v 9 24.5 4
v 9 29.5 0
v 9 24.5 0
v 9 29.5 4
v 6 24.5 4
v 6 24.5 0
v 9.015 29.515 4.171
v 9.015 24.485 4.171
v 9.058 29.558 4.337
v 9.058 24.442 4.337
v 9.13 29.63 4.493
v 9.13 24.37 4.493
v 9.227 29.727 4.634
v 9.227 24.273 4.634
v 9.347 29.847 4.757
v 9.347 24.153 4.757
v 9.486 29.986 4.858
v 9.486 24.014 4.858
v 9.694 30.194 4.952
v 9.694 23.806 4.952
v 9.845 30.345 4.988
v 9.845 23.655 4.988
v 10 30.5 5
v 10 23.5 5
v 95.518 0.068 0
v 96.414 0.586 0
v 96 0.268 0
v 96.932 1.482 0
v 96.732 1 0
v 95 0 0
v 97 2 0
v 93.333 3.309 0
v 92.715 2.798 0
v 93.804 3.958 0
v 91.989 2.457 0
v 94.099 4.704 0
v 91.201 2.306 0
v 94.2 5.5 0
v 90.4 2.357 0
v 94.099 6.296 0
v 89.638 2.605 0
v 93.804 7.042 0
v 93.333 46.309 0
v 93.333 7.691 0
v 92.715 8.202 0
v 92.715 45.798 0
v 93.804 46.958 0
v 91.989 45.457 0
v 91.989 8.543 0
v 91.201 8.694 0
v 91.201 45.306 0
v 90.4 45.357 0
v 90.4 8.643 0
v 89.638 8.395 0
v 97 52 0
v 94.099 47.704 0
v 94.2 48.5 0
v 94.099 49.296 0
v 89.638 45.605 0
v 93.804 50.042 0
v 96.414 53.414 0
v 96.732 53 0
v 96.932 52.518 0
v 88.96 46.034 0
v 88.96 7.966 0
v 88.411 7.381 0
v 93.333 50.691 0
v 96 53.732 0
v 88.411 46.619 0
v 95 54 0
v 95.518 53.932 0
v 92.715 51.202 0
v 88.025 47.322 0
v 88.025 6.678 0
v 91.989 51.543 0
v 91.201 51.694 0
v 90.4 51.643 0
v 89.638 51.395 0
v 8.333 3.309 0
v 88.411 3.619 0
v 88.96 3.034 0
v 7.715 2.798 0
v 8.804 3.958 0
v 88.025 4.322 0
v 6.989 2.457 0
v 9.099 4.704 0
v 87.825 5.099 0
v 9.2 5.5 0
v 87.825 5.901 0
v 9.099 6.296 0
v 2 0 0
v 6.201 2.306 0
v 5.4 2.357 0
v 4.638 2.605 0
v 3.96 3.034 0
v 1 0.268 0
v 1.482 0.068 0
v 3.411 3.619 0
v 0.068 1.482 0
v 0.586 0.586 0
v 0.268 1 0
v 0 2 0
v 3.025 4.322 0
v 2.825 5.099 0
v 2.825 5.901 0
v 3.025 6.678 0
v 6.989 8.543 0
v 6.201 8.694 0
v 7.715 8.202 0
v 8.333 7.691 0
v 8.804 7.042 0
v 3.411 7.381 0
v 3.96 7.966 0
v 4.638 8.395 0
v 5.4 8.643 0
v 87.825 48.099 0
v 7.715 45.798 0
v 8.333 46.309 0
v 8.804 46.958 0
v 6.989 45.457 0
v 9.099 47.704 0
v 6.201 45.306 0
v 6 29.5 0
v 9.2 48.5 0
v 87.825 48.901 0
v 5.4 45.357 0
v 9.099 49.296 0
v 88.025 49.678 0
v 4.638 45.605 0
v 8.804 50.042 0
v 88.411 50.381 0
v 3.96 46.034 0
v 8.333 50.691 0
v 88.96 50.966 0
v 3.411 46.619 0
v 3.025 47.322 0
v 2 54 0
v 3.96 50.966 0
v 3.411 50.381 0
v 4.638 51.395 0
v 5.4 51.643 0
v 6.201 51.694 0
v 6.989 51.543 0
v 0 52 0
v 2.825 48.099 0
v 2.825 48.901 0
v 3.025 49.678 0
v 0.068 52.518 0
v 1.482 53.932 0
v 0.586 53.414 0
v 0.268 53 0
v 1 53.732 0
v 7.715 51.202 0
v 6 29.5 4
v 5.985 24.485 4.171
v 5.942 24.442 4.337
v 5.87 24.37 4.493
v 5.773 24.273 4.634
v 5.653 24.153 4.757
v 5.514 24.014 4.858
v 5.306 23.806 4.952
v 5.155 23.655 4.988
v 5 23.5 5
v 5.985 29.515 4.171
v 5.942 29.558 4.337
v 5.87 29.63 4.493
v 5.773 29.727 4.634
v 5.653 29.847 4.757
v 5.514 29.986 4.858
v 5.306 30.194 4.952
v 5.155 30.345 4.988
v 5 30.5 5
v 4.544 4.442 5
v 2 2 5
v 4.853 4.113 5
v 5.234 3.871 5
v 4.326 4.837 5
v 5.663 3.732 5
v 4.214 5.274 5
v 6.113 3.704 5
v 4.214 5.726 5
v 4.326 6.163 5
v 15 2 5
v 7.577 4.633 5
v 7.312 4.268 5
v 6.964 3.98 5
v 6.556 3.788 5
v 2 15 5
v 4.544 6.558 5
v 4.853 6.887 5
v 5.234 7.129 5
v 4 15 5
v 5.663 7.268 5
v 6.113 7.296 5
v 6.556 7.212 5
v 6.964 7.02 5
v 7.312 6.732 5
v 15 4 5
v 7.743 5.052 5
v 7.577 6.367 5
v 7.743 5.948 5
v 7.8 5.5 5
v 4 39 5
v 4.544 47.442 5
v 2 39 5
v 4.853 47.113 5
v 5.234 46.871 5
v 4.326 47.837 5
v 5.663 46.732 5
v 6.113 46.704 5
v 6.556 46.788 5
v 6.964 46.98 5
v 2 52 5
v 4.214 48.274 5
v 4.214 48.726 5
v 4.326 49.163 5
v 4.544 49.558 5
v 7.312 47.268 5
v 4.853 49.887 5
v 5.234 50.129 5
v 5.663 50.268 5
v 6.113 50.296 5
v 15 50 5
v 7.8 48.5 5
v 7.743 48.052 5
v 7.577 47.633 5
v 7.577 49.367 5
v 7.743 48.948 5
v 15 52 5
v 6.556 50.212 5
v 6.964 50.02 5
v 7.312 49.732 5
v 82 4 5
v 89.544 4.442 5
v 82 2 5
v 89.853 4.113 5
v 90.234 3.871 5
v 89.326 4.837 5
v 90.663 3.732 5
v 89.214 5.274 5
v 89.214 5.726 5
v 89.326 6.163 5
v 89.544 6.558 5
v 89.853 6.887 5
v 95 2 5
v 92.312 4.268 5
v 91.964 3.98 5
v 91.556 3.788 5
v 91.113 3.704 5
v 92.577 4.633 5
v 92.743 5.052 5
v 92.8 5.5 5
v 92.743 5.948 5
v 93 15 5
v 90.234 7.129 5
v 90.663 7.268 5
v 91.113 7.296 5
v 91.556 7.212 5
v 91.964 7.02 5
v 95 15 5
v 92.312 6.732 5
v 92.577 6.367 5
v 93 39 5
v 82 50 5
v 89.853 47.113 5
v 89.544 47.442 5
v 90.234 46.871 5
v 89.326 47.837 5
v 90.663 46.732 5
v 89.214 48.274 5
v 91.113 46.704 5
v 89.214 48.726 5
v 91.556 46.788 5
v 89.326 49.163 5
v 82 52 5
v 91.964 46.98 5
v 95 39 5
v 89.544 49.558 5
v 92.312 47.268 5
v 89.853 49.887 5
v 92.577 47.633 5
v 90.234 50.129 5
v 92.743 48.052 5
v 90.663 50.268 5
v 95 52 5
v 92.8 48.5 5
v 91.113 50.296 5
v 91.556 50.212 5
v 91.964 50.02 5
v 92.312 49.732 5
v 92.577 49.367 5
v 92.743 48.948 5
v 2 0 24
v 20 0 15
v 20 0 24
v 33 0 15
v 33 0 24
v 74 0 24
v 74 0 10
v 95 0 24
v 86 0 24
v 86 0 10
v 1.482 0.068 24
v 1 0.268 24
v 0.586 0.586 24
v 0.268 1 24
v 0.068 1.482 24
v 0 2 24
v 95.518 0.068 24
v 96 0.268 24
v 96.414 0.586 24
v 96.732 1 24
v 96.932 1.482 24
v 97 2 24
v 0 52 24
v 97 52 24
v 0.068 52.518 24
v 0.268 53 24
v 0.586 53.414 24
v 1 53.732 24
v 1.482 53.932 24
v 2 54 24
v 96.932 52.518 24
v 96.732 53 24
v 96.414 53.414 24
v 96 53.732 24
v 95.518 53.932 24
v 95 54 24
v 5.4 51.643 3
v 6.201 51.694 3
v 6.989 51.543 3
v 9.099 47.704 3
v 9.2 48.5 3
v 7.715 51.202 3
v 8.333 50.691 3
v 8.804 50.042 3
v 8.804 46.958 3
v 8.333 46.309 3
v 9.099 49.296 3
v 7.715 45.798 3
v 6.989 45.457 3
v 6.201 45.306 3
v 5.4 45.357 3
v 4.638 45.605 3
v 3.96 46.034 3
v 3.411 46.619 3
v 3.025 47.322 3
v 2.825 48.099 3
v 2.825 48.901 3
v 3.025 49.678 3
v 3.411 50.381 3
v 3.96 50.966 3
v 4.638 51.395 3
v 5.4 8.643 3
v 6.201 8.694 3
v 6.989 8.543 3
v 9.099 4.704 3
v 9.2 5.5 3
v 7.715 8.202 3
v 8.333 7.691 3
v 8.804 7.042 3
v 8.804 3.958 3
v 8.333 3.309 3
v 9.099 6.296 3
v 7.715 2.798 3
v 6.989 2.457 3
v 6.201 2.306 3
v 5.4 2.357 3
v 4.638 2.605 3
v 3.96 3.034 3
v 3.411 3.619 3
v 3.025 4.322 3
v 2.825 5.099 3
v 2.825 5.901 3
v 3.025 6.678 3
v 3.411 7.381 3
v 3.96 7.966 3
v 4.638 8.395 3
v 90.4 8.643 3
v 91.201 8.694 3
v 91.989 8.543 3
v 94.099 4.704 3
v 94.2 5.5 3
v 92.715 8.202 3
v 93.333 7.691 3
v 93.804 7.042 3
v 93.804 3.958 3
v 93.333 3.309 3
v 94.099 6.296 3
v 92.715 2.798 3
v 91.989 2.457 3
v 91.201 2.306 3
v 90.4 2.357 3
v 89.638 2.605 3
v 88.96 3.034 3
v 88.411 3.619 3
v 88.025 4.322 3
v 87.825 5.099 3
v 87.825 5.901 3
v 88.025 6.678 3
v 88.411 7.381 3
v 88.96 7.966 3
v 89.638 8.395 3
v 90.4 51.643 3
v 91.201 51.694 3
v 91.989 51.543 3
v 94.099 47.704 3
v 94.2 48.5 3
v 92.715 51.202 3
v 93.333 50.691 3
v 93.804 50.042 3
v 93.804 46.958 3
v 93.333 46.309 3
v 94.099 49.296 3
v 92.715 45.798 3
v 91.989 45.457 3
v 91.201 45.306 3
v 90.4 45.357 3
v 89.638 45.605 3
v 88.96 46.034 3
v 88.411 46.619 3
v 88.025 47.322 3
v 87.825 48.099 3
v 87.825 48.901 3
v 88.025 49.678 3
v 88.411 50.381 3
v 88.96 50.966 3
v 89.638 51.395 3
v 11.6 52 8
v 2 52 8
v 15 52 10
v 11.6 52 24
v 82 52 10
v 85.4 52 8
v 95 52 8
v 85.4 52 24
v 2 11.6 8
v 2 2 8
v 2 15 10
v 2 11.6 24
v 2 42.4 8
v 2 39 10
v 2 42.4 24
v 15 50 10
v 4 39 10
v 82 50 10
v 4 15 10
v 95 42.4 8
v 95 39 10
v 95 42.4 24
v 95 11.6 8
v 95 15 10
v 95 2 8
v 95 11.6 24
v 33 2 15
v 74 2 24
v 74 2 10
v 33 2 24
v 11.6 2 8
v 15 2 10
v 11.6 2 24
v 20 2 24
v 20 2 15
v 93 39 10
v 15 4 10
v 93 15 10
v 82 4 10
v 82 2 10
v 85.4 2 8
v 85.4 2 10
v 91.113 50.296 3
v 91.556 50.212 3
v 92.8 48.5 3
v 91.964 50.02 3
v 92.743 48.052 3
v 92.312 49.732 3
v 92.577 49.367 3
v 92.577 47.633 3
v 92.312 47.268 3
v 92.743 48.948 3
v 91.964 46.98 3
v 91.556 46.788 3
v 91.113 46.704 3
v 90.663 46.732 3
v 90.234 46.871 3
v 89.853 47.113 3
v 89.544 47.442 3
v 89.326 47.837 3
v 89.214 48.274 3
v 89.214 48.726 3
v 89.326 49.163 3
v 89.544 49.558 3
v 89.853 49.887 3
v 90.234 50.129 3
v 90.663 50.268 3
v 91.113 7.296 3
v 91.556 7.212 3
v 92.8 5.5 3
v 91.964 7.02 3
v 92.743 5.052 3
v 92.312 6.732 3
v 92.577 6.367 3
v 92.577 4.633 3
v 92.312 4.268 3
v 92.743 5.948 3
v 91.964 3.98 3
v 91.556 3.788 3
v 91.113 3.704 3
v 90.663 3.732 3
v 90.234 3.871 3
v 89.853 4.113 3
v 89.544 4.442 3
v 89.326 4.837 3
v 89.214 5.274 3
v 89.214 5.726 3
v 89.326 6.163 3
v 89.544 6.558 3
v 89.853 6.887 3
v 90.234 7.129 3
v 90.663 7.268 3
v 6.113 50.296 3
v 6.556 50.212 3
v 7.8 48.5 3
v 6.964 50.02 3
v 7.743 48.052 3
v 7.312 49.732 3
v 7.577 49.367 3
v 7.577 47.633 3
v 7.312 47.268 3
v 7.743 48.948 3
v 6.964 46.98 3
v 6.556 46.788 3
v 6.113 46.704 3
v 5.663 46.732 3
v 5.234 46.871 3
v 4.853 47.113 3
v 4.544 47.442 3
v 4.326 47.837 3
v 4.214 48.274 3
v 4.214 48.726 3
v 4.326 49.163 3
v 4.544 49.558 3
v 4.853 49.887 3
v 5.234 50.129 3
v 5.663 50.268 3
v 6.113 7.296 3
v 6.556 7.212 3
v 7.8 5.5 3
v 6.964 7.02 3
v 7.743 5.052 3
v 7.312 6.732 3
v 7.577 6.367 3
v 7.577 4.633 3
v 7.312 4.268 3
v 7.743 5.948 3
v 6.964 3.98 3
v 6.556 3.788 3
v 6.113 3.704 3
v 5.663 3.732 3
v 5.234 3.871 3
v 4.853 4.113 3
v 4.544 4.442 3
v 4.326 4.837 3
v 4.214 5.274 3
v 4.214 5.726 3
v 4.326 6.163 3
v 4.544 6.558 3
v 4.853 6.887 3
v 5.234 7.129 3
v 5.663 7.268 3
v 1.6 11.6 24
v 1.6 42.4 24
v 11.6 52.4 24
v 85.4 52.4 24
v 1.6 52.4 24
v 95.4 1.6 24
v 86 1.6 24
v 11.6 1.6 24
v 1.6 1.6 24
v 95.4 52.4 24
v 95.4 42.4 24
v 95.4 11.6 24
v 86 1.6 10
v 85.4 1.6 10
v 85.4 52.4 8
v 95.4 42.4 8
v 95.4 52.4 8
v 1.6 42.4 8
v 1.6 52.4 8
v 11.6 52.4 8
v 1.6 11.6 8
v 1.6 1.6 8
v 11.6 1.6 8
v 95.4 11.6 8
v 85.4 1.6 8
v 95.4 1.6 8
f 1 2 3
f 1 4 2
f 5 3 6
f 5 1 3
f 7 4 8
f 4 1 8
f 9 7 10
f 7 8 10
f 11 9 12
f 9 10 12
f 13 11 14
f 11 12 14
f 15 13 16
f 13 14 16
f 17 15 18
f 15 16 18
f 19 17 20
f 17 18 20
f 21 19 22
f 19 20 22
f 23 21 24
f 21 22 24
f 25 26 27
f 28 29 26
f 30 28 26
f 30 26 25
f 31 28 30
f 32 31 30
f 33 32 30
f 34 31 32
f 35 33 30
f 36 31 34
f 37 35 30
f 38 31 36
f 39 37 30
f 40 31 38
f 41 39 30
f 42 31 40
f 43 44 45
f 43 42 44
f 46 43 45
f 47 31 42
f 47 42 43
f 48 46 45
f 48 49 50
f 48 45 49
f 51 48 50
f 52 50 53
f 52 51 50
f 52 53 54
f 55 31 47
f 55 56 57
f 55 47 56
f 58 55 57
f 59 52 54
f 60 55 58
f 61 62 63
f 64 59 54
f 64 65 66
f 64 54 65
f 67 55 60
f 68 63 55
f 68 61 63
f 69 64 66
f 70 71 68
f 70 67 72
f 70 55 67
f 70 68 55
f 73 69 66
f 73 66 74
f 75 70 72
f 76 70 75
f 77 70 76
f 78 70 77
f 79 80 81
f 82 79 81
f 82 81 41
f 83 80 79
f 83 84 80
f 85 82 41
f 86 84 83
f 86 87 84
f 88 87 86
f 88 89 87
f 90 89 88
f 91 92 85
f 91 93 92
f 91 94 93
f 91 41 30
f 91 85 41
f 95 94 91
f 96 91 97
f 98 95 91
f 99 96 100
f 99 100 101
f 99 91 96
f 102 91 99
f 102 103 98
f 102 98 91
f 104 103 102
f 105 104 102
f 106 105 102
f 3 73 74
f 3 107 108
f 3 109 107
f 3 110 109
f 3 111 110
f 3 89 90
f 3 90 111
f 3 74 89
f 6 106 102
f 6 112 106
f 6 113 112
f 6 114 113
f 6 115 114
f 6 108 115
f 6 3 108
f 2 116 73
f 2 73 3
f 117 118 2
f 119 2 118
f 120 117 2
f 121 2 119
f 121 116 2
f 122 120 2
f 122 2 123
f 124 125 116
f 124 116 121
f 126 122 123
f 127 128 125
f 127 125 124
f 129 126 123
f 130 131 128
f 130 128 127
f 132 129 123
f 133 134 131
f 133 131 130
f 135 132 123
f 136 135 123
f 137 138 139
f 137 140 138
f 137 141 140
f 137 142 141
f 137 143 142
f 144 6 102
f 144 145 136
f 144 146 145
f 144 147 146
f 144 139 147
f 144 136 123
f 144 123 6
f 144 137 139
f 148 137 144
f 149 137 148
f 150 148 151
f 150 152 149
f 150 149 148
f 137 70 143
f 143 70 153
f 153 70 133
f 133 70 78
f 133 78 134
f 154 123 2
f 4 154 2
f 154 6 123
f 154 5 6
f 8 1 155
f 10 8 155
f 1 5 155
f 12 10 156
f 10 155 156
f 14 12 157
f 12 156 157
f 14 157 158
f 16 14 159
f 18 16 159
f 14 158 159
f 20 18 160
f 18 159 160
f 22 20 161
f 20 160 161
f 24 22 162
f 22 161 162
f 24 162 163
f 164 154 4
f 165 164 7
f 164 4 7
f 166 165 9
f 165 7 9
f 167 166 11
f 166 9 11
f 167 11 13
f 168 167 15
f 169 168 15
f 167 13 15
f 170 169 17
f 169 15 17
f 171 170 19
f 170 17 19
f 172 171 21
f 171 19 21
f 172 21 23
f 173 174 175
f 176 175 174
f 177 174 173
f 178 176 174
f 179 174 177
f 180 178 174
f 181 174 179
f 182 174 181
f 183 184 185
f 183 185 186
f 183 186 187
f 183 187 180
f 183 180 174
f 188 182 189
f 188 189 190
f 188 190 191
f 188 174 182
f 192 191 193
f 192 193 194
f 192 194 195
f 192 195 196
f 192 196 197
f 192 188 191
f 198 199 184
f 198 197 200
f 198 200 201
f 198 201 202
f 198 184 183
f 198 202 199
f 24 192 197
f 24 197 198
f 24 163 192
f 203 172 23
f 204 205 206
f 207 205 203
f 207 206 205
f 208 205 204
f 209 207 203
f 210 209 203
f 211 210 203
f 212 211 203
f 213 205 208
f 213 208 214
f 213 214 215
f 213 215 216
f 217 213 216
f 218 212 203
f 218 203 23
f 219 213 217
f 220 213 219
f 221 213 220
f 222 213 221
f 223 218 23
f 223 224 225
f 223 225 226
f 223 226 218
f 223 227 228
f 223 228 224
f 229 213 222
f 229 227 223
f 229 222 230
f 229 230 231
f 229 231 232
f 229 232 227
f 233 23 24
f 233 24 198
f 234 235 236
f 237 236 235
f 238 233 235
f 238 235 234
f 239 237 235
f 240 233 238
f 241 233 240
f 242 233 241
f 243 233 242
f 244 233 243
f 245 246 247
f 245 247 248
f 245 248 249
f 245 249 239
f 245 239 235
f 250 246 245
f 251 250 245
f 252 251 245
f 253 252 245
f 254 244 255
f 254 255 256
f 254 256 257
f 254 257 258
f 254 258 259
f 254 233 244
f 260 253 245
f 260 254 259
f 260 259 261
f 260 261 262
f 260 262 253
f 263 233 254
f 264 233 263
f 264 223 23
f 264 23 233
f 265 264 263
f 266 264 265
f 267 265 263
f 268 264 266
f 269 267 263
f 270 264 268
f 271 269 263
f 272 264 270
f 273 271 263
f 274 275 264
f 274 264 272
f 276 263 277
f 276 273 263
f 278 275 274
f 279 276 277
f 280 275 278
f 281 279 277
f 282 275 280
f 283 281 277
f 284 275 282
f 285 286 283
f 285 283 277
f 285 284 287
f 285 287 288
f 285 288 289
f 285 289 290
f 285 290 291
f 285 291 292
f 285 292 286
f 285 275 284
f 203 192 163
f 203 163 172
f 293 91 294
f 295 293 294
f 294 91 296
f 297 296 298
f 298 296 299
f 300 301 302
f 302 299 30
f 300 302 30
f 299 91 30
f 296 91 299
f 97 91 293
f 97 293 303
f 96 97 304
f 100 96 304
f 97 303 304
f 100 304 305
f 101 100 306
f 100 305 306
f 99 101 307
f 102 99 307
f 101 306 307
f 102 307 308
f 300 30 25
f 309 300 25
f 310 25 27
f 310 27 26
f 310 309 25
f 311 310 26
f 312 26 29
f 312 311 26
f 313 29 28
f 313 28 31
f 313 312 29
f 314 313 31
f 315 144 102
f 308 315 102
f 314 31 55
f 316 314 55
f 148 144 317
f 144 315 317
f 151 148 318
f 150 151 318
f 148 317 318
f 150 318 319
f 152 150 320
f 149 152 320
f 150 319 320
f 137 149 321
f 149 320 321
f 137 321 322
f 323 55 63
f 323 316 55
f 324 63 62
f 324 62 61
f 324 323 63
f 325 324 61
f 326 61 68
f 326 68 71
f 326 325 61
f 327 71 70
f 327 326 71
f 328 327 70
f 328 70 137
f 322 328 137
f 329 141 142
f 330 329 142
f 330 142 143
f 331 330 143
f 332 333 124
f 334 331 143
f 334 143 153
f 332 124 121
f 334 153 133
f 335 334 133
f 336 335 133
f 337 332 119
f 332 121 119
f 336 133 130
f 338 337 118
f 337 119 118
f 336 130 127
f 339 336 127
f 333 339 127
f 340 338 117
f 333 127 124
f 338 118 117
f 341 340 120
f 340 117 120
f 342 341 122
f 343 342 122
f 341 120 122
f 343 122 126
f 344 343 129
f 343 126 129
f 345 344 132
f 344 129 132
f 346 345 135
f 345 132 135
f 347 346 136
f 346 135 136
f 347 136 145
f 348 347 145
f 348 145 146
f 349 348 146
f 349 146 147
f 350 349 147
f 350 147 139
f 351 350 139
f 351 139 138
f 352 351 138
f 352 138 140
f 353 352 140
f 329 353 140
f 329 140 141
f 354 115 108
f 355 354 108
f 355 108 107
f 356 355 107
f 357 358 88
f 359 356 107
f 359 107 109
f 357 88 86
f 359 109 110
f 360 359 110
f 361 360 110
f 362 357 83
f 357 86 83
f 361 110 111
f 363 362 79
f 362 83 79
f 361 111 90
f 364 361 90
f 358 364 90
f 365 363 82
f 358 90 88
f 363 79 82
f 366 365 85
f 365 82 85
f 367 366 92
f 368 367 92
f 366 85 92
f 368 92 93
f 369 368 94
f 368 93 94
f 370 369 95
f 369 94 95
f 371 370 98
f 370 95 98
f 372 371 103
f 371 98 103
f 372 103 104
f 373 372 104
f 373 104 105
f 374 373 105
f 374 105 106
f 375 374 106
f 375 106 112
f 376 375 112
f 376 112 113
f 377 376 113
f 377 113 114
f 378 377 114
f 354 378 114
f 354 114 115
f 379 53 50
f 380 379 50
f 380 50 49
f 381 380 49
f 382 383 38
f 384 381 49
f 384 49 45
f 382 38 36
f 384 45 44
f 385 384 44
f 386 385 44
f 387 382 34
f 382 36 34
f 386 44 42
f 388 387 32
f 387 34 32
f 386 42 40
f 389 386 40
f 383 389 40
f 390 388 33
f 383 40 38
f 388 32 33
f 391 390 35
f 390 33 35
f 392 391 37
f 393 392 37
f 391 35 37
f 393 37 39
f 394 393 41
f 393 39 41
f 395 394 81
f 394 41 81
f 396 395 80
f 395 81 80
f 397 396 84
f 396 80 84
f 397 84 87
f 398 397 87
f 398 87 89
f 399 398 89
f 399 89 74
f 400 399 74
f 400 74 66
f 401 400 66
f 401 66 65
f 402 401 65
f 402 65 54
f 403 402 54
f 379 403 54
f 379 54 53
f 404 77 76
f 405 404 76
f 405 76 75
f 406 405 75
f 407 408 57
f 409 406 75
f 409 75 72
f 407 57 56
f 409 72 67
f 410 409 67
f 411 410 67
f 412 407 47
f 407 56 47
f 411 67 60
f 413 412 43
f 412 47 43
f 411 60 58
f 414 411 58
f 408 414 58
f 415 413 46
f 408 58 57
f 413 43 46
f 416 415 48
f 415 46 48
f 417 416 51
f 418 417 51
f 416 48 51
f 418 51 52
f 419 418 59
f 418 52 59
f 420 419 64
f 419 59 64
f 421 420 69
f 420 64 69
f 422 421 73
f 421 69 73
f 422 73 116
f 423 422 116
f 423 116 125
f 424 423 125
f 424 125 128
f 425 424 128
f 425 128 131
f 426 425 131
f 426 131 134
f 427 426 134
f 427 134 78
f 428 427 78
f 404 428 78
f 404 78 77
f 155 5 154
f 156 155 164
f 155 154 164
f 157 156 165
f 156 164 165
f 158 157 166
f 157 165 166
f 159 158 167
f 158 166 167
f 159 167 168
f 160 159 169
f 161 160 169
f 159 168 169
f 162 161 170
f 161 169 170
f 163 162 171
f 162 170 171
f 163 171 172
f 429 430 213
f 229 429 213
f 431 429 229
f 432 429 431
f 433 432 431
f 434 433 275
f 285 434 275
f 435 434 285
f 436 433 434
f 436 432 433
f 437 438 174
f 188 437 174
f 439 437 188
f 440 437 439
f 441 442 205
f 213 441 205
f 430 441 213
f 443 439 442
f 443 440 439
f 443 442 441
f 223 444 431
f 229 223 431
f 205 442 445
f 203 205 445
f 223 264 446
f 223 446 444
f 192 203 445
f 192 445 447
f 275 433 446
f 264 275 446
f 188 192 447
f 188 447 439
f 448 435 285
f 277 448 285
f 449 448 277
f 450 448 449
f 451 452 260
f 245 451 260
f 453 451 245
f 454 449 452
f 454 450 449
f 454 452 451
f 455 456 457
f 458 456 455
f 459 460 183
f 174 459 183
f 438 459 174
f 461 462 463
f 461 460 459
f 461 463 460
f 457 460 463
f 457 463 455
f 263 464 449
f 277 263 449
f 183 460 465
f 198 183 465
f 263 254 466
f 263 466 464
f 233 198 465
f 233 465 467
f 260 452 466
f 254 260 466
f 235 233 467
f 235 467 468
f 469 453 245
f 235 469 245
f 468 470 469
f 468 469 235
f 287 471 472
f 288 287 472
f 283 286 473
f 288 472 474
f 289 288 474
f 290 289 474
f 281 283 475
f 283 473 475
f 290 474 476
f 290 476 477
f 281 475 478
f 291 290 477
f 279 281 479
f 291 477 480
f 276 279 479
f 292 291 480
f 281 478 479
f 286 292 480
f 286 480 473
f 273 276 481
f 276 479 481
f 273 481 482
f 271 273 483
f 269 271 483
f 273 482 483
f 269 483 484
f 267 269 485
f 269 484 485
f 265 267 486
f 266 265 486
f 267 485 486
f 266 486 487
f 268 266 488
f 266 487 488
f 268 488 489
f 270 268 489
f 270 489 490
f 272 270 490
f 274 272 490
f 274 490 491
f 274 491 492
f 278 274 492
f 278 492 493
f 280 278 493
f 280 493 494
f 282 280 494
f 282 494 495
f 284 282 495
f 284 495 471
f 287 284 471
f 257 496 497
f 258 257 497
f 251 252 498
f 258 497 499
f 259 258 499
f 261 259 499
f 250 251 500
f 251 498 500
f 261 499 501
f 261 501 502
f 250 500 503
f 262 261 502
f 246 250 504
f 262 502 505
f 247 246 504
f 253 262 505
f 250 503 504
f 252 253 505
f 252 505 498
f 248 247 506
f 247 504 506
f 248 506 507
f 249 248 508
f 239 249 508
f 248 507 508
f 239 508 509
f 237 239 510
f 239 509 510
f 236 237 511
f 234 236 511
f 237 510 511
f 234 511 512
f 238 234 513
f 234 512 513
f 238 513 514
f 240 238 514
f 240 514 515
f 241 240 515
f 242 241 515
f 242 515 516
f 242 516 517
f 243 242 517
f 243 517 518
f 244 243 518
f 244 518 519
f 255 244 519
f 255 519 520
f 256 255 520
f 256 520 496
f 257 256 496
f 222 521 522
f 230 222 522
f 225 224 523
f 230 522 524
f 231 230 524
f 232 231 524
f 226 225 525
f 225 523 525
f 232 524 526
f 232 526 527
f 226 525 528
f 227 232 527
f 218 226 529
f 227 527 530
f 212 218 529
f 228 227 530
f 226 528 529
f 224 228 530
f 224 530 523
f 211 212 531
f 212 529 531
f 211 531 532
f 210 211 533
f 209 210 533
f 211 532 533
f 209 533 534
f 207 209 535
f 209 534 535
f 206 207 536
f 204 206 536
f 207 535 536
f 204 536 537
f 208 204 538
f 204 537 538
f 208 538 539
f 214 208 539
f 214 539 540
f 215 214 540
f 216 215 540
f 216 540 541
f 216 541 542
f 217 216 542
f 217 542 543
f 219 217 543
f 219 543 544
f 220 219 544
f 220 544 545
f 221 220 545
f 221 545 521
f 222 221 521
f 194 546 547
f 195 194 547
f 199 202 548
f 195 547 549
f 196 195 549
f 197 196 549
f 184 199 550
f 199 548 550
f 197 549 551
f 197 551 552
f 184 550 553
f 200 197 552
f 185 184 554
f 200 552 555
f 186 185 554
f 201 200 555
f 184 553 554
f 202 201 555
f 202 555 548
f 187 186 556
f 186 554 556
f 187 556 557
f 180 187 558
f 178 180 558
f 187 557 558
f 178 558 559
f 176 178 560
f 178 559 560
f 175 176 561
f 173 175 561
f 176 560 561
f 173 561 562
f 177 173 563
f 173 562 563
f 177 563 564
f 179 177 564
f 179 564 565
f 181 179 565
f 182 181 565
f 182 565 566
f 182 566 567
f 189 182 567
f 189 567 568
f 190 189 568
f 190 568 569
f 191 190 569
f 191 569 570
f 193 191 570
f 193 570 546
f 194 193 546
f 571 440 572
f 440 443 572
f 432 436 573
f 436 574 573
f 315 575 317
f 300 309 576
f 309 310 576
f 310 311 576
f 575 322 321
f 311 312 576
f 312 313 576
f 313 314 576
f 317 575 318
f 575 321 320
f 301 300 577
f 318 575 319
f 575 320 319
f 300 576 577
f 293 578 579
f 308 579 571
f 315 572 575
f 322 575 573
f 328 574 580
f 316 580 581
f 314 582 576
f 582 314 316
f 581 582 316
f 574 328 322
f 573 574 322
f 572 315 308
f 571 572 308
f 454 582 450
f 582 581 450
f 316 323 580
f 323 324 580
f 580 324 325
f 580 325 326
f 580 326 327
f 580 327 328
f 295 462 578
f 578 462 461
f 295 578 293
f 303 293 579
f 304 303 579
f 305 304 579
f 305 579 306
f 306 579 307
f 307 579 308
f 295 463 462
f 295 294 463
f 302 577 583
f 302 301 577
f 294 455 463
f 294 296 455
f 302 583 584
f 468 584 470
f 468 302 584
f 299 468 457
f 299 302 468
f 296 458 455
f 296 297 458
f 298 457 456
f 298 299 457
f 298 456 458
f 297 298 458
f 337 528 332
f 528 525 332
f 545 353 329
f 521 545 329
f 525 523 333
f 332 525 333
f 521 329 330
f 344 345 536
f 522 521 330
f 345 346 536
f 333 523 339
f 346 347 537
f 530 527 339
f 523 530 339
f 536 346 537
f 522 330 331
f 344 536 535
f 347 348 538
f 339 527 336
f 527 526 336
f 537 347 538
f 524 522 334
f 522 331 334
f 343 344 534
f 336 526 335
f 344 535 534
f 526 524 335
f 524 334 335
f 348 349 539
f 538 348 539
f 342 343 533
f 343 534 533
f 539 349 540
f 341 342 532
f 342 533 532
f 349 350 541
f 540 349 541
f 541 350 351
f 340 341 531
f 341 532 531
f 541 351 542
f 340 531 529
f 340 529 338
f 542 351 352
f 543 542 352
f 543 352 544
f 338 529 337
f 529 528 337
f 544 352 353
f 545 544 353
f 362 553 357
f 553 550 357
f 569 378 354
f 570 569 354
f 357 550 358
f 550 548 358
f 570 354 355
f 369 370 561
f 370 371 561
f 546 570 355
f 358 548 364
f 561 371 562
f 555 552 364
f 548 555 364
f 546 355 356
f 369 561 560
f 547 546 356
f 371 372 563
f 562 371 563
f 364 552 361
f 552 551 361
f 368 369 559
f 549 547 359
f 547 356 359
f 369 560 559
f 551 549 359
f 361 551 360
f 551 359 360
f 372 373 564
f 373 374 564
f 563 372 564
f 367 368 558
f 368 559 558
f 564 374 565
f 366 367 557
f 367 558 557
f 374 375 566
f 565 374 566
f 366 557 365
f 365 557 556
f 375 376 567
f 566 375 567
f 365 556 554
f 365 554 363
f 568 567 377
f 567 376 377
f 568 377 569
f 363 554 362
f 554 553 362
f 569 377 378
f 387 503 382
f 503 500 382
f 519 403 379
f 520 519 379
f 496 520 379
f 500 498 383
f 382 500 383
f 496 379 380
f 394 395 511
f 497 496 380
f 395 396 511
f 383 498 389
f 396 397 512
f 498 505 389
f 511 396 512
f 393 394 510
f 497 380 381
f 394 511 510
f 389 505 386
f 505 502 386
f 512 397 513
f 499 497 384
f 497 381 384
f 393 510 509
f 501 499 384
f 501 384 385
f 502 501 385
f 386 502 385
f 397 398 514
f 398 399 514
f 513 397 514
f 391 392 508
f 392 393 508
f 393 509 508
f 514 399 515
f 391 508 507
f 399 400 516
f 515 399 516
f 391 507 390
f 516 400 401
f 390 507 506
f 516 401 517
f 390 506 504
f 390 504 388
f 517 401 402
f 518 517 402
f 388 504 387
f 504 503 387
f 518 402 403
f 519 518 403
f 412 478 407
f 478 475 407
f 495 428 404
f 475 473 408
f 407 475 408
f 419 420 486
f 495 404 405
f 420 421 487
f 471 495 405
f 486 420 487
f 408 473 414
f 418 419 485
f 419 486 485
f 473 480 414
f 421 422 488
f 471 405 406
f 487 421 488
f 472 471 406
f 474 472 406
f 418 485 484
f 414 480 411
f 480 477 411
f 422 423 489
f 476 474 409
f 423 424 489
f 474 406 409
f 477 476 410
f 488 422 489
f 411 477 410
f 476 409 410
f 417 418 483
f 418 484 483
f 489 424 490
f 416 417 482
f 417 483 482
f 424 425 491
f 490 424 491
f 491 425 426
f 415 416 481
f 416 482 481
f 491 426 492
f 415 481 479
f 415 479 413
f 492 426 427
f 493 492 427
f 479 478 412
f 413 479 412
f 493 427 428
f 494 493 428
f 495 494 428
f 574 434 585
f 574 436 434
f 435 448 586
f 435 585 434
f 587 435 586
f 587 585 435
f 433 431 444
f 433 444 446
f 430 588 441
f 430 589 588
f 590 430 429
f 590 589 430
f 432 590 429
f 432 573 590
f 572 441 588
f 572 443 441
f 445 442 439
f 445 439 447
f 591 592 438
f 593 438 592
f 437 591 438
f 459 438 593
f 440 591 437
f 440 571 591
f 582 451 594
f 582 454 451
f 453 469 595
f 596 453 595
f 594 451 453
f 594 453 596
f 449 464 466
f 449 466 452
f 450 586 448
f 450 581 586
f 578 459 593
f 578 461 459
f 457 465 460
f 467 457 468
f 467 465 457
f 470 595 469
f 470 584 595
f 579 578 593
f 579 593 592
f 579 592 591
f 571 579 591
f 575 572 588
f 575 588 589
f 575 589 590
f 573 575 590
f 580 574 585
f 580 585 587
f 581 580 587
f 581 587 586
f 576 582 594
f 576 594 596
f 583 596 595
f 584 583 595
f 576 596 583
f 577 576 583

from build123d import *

# Parameters (mm, degrees)
SKETCH_W        = 97
SKETCH_H        = 54
PAD_DEPTH       = 24
SKETCH001_W     = 93
SKETCH001_H     = 50
POCKET_DEPTH    = 19
SKETCH002_R     = 1.8
POCKET001_DEPTH = 24.001
SKETCH003_R     = 3.2
POCKET002_DEPTH = 3
SKETCH004_W     = 67
SKETCH004_H     = 2
SKETCH004_W_2   = 2
SKETCH004_H_2   = 24
PAD001_DEPTH    = 5
SKETCH005_W     = 13
SKETCH005_H     = 9
POCKET003_DEPTH = 2
SKETCH006_W     = 12
SKETCH006_H     = 14
POCKET004_DEPTH = 2
FILLET_R        = 2
SKETCH007_W     = 10
SKETCH007_H     = 10
POCKET005_DEPTH = 16
SKETCH008_W     = 3
SKETCH008_H     = 5
POCKET006_DEPTH = 5.001
FILLET001_R     = 1


with BuildPart() as part:
    # Sketch → Pad (new body)
    with BuildSketch(Plane.XY):
        with Locations((48.5, 27)):
            Rectangle(SKETCH_W, SKETCH_H)
    extrude(amount=PAD_DEPTH)

    # Sketch001 → Pocket (cut)
    with BuildSketch(Plane.XY.offset(24)):
        with Locations((48.5, 27)):
            Rectangle(SKETCH001_W, SKETCH001_H)
    extrude(amount=-POCKET_DEPTH, mode=Mode.SUBTRACT)

    # Sketch002 → Pocket001 (cut, through all)
    with BuildSketch(Plane(origin=(0, 0, 0), x_dir=(1, 0, 0), z_dir=(0, 0, -1))):
        with Locations((6, -5.5)):
            Circle(SKETCH002_R)
        with Locations((91, -5.5)):
            Circle(SKETCH002_R)
        with Locations((91, -48.5)):
            Circle(SKETCH002_R)
        with Locations((6, -48.5)):
            Circle(SKETCH002_R)
    extrude(amount=-POCKET001_DEPTH, mode=Mode.SUBTRACT)

    # Sketch003 → Pocket002 (cut)
    with BuildSketch(Plane(origin=(0, 0, 0), x_dir=(1, 0, 0), z_dir=(0, 0, -1))):
        with Locations((6, -5.5)):
            Circle(SKETCH003_R)
        with Locations((6, -48.5)):
            Circle(SKETCH003_R)
        with Locations((91, -5.5)):
            Circle(SKETCH003_R)
        with Locations((91, -48.5)):
            Circle(SKETCH003_R)
    extrude(amount=-POCKET002_DEPTH, mode=Mode.SUBTRACT)

    # Sketch004 → Pad001 (new body)
    with BuildSketch(Plane.XY.offset(5)):
        with Locations((48.5, 3)):
            Rectangle(SKETCH004_W, SKETCH004_H)
        with Locations((48.5, 51)):
            Rectangle(SKETCH004_W, SKETCH004_H)
        with Locations((3, 27)):
            Rectangle(SKETCH004_W_2, SKETCH004_H_2)
        with Locations((94, 27)):
            Rectangle(SKETCH004_W_2, SKETCH004_H_2)
    extrude(amount=PAD001_DEPTH)

    # Sketch005 → Pocket003 (cut)
    with BuildSketch(Plane.XZ):
        with Locations((26.5, 19.5)):
            Rectangle(SKETCH005_W, SKETCH005_H)
    extrude(amount=-POCKET003_DEPTH, mode=Mode.SUBTRACT)

    # Sketch006 → Pocket004 (cut)
    with BuildSketch(Plane.XZ):
        with Locations((80, 17)):
            Rectangle(SKETCH006_W, SKETCH006_H)
    extrude(amount=-POCKET004_DEPTH, mode=Mode.SUBTRACT)

    # Fillet
    fillet_edges = [part.edges().sort_by_distance(p)[0] for p in [
        (97, 0, 12),
        (0, 0, 12),
        (97, 54, 12),
        (0, 54, 12),
    ]]
    fillet(fillet_edges, radius=FILLET_R)

    # Sketch007 → Pocket005 (cut)
    with BuildSketch(Plane.XY.offset(24)):
        with Locations((6.6, 6.6)):
            Rectangle(SKETCH007_W, SKETCH007_H)
        with Locations((6.6, 47.4)):
            Rectangle(SKETCH007_W, SKETCH007_H)
        with Locations((90.4, 6.6)):
            Rectangle(SKETCH007_W, SKETCH007_H)
        with Locations((90.4, 47.4)):
            Rectangle(SKETCH007_W, SKETCH007_H)
    extrude(amount=-POCKET005_DEPTH, mode=Mode.SUBTRACT)

    # Sketch008 → Pocket006 (cut, through all)
    with BuildSketch(Plane.XY.offset(5)):
        with Locations((7.5, 27)):
            Rectangle(SKETCH008_W, SKETCH008_H)
    extrude(amount=-POCKET006_DEPTH, mode=Mode.SUBTRACT)

    # Fillet001
    fillet001_edges = [part.edges().sort_by_distance(p)[0] for p in [
        (6, 27, 5),
        (9, 27, 5),
        (7.5, 29.5, 5),
        (7.5, 24.5, 5),
    ]]
    fillet(fillet001_edges, radius=FILLET001_R)


solid = part.part
